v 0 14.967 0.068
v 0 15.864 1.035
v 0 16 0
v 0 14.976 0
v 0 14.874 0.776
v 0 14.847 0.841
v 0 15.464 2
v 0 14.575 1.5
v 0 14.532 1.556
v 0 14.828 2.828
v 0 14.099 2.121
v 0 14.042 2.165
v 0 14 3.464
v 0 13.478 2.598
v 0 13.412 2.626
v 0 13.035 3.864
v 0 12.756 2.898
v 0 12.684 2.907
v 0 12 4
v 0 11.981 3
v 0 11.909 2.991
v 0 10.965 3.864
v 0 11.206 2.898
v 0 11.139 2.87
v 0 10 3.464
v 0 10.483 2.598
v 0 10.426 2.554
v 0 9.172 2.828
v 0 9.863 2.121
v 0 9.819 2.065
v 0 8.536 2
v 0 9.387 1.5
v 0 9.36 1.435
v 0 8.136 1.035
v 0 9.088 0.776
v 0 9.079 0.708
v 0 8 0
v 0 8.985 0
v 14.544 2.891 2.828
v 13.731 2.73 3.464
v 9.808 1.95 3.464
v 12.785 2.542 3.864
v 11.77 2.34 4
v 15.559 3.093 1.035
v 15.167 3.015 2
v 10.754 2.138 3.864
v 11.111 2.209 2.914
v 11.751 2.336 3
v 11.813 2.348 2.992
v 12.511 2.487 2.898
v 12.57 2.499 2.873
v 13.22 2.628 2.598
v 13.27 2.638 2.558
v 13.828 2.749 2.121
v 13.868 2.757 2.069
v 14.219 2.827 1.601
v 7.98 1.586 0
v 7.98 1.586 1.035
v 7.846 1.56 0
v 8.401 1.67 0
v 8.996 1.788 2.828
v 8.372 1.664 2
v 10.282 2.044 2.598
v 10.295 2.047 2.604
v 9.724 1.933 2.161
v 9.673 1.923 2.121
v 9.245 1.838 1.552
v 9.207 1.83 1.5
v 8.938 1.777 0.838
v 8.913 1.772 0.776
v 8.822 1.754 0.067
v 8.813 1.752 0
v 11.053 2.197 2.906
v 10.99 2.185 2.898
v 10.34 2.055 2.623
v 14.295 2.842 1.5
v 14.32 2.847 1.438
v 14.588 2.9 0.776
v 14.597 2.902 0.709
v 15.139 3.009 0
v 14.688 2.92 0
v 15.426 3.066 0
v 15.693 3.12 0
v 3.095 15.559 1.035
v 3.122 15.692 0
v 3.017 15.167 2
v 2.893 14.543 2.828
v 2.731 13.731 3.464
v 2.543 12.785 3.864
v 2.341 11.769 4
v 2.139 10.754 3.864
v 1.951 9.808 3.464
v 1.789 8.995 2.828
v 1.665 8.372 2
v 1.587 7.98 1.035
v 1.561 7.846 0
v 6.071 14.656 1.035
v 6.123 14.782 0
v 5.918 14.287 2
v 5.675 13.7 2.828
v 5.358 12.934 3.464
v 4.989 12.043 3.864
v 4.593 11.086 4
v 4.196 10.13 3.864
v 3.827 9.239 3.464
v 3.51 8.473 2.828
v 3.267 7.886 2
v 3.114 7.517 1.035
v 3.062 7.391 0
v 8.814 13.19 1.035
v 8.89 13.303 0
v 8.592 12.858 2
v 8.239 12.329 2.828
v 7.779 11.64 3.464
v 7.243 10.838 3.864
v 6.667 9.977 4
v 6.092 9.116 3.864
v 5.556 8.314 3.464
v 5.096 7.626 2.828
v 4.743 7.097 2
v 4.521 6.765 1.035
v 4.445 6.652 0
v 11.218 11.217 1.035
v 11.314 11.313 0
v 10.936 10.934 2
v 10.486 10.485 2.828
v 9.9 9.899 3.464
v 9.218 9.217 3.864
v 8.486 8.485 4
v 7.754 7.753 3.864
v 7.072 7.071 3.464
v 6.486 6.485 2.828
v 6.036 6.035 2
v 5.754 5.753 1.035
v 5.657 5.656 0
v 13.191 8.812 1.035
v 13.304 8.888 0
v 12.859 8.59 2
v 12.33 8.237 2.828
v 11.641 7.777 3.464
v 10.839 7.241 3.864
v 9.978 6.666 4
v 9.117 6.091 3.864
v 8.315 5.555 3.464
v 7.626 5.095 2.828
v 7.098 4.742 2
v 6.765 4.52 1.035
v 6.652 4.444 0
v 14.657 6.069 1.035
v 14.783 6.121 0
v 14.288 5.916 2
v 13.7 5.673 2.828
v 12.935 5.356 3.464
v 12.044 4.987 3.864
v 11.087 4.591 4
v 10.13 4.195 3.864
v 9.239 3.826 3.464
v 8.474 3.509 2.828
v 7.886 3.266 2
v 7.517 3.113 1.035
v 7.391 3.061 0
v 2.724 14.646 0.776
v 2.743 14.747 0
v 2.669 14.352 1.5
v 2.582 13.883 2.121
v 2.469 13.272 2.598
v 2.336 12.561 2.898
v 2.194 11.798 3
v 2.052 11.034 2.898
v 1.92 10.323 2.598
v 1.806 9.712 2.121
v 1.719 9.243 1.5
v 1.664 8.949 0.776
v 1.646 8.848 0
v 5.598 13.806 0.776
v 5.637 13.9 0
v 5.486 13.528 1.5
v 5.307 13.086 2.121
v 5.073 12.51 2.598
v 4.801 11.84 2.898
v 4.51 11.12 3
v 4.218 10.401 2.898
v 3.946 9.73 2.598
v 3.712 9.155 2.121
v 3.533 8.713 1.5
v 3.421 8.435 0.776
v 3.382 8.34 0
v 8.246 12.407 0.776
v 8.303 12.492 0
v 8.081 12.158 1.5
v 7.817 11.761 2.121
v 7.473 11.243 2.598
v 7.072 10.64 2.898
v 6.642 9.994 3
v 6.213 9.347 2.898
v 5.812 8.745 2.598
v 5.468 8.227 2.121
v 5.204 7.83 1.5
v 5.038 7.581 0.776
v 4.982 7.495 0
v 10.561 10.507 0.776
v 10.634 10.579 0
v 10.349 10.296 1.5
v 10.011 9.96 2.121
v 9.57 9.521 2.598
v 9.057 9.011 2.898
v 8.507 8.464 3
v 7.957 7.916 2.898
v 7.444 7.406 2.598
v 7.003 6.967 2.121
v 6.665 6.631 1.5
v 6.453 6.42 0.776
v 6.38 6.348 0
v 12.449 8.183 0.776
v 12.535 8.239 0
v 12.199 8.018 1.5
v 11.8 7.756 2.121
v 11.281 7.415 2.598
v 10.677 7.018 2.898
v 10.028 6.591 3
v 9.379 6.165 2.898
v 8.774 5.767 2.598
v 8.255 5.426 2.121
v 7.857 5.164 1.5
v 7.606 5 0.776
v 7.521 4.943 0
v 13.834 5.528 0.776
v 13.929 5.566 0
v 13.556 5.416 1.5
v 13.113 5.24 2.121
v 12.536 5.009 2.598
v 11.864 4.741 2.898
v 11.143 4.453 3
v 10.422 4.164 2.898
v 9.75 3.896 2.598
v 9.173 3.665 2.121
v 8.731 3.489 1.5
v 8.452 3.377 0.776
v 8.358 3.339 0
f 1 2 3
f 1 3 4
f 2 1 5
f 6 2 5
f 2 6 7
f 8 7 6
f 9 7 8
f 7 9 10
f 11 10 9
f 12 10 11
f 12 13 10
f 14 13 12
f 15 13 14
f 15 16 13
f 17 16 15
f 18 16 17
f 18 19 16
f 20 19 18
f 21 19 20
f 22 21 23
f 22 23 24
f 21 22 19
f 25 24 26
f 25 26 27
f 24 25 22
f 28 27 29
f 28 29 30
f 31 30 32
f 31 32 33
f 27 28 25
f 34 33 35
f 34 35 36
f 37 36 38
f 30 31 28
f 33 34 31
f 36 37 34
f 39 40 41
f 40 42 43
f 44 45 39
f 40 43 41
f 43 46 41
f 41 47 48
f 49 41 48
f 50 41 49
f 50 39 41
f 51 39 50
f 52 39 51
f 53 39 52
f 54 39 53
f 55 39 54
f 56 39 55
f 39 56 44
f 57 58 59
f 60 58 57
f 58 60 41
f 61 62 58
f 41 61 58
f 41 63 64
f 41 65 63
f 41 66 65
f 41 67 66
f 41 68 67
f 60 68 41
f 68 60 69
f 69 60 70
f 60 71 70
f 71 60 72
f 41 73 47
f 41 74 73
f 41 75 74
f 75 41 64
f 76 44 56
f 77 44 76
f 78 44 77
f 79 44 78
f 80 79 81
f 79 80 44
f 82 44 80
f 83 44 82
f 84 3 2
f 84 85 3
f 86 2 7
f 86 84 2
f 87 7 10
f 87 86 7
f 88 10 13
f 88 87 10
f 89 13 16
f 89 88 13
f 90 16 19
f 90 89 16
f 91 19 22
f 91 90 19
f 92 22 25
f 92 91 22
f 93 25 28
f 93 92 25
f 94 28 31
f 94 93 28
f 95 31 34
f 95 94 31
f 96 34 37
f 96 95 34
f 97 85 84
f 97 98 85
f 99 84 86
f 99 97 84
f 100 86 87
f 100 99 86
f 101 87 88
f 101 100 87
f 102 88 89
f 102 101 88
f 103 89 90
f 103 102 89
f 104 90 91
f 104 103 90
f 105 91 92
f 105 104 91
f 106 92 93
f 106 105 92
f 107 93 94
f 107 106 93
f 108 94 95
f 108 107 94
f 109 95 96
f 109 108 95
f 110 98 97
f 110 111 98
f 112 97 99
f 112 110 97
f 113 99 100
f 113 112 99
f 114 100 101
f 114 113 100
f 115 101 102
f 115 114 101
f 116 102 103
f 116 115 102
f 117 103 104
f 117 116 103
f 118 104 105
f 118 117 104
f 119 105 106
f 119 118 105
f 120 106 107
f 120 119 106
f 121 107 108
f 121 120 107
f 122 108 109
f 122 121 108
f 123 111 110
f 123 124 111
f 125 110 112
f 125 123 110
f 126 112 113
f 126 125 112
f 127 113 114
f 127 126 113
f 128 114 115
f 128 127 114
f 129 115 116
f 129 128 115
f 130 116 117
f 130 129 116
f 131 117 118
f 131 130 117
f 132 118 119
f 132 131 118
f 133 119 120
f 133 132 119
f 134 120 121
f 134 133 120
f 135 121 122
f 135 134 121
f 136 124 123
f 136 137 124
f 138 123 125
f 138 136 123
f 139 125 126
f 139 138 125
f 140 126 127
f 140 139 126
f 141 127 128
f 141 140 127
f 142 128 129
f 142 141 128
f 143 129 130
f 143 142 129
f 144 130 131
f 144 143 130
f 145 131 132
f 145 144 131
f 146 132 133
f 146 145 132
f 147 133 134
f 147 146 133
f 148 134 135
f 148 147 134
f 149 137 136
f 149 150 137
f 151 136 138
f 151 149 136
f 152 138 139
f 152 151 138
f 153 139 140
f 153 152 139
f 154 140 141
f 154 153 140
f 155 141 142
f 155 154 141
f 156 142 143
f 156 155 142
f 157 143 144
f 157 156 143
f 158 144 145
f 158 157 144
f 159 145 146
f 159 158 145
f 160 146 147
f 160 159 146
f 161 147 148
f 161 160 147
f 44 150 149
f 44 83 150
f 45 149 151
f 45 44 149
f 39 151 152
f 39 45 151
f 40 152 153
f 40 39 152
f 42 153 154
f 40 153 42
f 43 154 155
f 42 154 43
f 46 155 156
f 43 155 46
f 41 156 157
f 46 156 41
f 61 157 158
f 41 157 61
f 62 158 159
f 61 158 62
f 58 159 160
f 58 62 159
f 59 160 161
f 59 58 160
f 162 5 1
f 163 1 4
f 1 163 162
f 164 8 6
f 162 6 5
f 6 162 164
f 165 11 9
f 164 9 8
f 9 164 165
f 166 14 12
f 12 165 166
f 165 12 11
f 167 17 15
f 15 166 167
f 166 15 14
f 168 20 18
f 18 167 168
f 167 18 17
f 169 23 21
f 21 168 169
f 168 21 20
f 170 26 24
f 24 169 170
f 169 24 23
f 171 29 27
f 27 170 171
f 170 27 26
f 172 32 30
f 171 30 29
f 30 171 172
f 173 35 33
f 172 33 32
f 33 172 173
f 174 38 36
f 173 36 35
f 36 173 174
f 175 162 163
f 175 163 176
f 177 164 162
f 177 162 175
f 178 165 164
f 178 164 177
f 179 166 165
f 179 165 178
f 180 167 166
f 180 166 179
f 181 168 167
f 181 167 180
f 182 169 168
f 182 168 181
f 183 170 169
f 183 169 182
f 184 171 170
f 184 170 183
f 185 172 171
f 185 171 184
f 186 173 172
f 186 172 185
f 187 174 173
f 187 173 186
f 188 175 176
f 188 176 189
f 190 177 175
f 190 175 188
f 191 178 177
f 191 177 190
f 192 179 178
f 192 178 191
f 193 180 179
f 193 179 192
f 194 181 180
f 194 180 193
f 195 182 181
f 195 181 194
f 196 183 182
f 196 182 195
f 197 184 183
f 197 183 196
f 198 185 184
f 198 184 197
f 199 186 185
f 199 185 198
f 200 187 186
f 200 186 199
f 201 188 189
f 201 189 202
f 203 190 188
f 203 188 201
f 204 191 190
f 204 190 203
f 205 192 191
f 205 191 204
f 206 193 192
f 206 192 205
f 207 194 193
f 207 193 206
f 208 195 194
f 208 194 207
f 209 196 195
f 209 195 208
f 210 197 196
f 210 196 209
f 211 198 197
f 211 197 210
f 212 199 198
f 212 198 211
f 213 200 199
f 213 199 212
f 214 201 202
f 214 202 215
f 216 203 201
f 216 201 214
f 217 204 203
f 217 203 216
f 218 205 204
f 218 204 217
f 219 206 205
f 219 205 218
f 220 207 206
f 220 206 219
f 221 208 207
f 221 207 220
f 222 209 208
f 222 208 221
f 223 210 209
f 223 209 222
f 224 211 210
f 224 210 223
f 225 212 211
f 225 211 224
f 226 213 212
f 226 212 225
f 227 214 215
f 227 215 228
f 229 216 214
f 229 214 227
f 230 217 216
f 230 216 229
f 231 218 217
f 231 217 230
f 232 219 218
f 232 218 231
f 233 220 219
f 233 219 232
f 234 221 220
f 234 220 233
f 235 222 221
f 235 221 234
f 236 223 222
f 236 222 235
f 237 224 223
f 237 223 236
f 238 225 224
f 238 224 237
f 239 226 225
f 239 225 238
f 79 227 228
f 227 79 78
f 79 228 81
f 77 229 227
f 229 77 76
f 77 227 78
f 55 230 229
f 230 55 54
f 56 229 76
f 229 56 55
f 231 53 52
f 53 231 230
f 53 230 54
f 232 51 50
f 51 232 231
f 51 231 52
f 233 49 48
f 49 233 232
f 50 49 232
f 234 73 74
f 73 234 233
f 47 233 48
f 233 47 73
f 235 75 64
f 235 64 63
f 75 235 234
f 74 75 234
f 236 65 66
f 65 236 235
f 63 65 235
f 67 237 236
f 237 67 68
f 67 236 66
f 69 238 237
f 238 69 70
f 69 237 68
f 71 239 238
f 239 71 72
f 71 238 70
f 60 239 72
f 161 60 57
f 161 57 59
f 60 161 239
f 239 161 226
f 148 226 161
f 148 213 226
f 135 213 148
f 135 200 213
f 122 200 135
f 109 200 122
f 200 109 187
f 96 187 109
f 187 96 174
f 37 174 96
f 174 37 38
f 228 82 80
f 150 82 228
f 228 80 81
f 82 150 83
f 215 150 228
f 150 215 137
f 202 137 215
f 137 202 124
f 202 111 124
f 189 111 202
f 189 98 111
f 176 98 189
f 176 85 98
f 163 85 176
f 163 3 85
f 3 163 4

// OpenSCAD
// file: ../build_environments.scad
// build_environments.scad: modules to build level sections
//

module pool(diameter=10.0, wall_height=2.0, step_width=3.0, connections=[])
{
    difference() {
        union() {
        difference() {
            cylinder(h=0.5,r1=diameter+step_width,r2=diameter+step_width,$fn=48);
            translate([0,0,-0.1])
                cylinder(h=0.7,r1=diameter,r2=diameter,$fn=48);
        }
        difference() {
            cylinder(h=wall_height,r1=diameter+step_width+1.0,r2=diameter+step_width+1.0,$fn=48);
            translate([0,0,-0.1])
                cylinder(h=wall_height+0.2,r1=diameter+step_width,r2=diameter+step_width,$fn=48);
        }
        }
    
        for (c = connections)
        {
            rotate([0,90,0]) {
                angle = atan2(c[1],c[0]);
                rotate([-angle,0,0]) {
                    cylinder(h=diameter+5.0,r1=c[2],r2=c[2],$fn=48);
                }
            }
        }
    }
}

module straight(length=10.0, width=2.0, dy1=0.0, dy2=0.0, dz=0.0)
{
    dims = [0, 0, 0, 0, 0, (dz/length)];
    matrix = [
        [ 1, dims[0], dims[1], 0 ],
        [ dims[2], 1, dims[4], 0 ],
        [ dims[5], dims[3], 1, 0 ],
        [ 0, 0, 0, 1 ]
    ];
    multmatrix(matrix)
    difference() {
        translate([dy1,0,0])
        union() {
            rotate([0,90,0]) {
                difference() {
                    cylinder(h=(length-dy1-dy2),r1=width+1.0,r2=width+1.0,$fn=24);
                    translate([0,0,-0.1])
                        cylinder(h=(length-dy1-dy2+0.2),r1=width,r2=width,$fn=24);
                }
                difference() {
                    cylinder(h=1.0,r1=width+2.0,r2=width+2.0,$fn=24);
                    translate([0,0,-0.1])
                        cylinder(h=1.2,r1=width,r2=width,$fn=24);
                }
                translate([0,0,(length-dy1-dy2)-1.0]) {
                    difference() {
                        cylinder(h=1.0,r1=width+2.0,r2=width+2.0,$fn=24);
                        translate([0,0,-0.1])
                            cylinder(h=1.2,r1=width,r2=width,$fn=24);
                    }
                }
            }
        }
        translate([0,0,-(2*width+4.0)/2])
            cube([3*length,3*length,2*width+4.0],center=true);
    }
}

module curve(p0=[0,0], center=[0,0], dir=1, angle=0.0, width=2.0)
{
    radius = sqrt((p0[0]-center[0])*(p0[0]-center[0]) + (p0[1]-center[1])*(p0[1]-center[1]));
    if (dir == 0) {
        difference() {
            rotate([0,0,-90])
            difference() {
                rotate_extrude(angle = angle, convexity = 10, $fn=32)
                    translate([radius, 0, 0])
                        circle(r = width+1.0,$fn=24);
                rotate([0,0,-1.0])
                    rotate_extrude(angle = angle+2.0, convexity = 10, $fn=32)
                        translate([radius, 0, 0])
                            circle(r = width,$fn=24);
            }
            translate([0,0,-(2*width+4.0)/2])
                cube([5*radius,5*radius,2*width+4.0],center=true);
        }
    }
    else {
        difference() {
            rotate([0,0,90])
            difference() {
                rotate_extrude(angle = -angle, convexity = 10, $fn=32)
                    translate([radius, 0, 0])
                        circle(r = width+1.0,$fn=24);
                rotate([0,0,1.0])
                    rotate_extrude(angle = -angle-2.0, convexity = 10, $fn=32)
                        translate([radius, 0, 0])
                            circle(r = width,$fn=24);
            }
            translate([0,0,-(2*width+4.0)/2])
                cube([5*radius,5*radius,2*width+4.0],center=true);
        }
    }

}

// test pool
//pool(diameter=12.0000, wall_height=3.0000, step_width=3.0000, connections=[[0.0000,-26.0000,2.0000], [23.6074,0.0000,2.0000]]);

// test straight, slope
//straight(length=26.0000, width=2.0000, dy1=11.8322, dy2=6.7082, dz=0.0000);
//straight(length=29.1549, width=12.0000, dy1=0.0000, dy2=0.0000, dz=-15.0000);

// test curve
//curve(p0=[23.6074, 0.0000], center=[23.6074, 5.0000], dir=0, angle=60.1011, width=2.0000);
//curve(p0=[33.6426, 12.4219], center=[37.9771, 9.9295], dir=1, angle=120.4627, width=2.0000);
// main file
use <../build_environments.scad>;
curve(p0=[-72.6803, 102.0802], center=[-75.5193, 113.7395], dir=1, angle=78.7567, width=3.0000);
